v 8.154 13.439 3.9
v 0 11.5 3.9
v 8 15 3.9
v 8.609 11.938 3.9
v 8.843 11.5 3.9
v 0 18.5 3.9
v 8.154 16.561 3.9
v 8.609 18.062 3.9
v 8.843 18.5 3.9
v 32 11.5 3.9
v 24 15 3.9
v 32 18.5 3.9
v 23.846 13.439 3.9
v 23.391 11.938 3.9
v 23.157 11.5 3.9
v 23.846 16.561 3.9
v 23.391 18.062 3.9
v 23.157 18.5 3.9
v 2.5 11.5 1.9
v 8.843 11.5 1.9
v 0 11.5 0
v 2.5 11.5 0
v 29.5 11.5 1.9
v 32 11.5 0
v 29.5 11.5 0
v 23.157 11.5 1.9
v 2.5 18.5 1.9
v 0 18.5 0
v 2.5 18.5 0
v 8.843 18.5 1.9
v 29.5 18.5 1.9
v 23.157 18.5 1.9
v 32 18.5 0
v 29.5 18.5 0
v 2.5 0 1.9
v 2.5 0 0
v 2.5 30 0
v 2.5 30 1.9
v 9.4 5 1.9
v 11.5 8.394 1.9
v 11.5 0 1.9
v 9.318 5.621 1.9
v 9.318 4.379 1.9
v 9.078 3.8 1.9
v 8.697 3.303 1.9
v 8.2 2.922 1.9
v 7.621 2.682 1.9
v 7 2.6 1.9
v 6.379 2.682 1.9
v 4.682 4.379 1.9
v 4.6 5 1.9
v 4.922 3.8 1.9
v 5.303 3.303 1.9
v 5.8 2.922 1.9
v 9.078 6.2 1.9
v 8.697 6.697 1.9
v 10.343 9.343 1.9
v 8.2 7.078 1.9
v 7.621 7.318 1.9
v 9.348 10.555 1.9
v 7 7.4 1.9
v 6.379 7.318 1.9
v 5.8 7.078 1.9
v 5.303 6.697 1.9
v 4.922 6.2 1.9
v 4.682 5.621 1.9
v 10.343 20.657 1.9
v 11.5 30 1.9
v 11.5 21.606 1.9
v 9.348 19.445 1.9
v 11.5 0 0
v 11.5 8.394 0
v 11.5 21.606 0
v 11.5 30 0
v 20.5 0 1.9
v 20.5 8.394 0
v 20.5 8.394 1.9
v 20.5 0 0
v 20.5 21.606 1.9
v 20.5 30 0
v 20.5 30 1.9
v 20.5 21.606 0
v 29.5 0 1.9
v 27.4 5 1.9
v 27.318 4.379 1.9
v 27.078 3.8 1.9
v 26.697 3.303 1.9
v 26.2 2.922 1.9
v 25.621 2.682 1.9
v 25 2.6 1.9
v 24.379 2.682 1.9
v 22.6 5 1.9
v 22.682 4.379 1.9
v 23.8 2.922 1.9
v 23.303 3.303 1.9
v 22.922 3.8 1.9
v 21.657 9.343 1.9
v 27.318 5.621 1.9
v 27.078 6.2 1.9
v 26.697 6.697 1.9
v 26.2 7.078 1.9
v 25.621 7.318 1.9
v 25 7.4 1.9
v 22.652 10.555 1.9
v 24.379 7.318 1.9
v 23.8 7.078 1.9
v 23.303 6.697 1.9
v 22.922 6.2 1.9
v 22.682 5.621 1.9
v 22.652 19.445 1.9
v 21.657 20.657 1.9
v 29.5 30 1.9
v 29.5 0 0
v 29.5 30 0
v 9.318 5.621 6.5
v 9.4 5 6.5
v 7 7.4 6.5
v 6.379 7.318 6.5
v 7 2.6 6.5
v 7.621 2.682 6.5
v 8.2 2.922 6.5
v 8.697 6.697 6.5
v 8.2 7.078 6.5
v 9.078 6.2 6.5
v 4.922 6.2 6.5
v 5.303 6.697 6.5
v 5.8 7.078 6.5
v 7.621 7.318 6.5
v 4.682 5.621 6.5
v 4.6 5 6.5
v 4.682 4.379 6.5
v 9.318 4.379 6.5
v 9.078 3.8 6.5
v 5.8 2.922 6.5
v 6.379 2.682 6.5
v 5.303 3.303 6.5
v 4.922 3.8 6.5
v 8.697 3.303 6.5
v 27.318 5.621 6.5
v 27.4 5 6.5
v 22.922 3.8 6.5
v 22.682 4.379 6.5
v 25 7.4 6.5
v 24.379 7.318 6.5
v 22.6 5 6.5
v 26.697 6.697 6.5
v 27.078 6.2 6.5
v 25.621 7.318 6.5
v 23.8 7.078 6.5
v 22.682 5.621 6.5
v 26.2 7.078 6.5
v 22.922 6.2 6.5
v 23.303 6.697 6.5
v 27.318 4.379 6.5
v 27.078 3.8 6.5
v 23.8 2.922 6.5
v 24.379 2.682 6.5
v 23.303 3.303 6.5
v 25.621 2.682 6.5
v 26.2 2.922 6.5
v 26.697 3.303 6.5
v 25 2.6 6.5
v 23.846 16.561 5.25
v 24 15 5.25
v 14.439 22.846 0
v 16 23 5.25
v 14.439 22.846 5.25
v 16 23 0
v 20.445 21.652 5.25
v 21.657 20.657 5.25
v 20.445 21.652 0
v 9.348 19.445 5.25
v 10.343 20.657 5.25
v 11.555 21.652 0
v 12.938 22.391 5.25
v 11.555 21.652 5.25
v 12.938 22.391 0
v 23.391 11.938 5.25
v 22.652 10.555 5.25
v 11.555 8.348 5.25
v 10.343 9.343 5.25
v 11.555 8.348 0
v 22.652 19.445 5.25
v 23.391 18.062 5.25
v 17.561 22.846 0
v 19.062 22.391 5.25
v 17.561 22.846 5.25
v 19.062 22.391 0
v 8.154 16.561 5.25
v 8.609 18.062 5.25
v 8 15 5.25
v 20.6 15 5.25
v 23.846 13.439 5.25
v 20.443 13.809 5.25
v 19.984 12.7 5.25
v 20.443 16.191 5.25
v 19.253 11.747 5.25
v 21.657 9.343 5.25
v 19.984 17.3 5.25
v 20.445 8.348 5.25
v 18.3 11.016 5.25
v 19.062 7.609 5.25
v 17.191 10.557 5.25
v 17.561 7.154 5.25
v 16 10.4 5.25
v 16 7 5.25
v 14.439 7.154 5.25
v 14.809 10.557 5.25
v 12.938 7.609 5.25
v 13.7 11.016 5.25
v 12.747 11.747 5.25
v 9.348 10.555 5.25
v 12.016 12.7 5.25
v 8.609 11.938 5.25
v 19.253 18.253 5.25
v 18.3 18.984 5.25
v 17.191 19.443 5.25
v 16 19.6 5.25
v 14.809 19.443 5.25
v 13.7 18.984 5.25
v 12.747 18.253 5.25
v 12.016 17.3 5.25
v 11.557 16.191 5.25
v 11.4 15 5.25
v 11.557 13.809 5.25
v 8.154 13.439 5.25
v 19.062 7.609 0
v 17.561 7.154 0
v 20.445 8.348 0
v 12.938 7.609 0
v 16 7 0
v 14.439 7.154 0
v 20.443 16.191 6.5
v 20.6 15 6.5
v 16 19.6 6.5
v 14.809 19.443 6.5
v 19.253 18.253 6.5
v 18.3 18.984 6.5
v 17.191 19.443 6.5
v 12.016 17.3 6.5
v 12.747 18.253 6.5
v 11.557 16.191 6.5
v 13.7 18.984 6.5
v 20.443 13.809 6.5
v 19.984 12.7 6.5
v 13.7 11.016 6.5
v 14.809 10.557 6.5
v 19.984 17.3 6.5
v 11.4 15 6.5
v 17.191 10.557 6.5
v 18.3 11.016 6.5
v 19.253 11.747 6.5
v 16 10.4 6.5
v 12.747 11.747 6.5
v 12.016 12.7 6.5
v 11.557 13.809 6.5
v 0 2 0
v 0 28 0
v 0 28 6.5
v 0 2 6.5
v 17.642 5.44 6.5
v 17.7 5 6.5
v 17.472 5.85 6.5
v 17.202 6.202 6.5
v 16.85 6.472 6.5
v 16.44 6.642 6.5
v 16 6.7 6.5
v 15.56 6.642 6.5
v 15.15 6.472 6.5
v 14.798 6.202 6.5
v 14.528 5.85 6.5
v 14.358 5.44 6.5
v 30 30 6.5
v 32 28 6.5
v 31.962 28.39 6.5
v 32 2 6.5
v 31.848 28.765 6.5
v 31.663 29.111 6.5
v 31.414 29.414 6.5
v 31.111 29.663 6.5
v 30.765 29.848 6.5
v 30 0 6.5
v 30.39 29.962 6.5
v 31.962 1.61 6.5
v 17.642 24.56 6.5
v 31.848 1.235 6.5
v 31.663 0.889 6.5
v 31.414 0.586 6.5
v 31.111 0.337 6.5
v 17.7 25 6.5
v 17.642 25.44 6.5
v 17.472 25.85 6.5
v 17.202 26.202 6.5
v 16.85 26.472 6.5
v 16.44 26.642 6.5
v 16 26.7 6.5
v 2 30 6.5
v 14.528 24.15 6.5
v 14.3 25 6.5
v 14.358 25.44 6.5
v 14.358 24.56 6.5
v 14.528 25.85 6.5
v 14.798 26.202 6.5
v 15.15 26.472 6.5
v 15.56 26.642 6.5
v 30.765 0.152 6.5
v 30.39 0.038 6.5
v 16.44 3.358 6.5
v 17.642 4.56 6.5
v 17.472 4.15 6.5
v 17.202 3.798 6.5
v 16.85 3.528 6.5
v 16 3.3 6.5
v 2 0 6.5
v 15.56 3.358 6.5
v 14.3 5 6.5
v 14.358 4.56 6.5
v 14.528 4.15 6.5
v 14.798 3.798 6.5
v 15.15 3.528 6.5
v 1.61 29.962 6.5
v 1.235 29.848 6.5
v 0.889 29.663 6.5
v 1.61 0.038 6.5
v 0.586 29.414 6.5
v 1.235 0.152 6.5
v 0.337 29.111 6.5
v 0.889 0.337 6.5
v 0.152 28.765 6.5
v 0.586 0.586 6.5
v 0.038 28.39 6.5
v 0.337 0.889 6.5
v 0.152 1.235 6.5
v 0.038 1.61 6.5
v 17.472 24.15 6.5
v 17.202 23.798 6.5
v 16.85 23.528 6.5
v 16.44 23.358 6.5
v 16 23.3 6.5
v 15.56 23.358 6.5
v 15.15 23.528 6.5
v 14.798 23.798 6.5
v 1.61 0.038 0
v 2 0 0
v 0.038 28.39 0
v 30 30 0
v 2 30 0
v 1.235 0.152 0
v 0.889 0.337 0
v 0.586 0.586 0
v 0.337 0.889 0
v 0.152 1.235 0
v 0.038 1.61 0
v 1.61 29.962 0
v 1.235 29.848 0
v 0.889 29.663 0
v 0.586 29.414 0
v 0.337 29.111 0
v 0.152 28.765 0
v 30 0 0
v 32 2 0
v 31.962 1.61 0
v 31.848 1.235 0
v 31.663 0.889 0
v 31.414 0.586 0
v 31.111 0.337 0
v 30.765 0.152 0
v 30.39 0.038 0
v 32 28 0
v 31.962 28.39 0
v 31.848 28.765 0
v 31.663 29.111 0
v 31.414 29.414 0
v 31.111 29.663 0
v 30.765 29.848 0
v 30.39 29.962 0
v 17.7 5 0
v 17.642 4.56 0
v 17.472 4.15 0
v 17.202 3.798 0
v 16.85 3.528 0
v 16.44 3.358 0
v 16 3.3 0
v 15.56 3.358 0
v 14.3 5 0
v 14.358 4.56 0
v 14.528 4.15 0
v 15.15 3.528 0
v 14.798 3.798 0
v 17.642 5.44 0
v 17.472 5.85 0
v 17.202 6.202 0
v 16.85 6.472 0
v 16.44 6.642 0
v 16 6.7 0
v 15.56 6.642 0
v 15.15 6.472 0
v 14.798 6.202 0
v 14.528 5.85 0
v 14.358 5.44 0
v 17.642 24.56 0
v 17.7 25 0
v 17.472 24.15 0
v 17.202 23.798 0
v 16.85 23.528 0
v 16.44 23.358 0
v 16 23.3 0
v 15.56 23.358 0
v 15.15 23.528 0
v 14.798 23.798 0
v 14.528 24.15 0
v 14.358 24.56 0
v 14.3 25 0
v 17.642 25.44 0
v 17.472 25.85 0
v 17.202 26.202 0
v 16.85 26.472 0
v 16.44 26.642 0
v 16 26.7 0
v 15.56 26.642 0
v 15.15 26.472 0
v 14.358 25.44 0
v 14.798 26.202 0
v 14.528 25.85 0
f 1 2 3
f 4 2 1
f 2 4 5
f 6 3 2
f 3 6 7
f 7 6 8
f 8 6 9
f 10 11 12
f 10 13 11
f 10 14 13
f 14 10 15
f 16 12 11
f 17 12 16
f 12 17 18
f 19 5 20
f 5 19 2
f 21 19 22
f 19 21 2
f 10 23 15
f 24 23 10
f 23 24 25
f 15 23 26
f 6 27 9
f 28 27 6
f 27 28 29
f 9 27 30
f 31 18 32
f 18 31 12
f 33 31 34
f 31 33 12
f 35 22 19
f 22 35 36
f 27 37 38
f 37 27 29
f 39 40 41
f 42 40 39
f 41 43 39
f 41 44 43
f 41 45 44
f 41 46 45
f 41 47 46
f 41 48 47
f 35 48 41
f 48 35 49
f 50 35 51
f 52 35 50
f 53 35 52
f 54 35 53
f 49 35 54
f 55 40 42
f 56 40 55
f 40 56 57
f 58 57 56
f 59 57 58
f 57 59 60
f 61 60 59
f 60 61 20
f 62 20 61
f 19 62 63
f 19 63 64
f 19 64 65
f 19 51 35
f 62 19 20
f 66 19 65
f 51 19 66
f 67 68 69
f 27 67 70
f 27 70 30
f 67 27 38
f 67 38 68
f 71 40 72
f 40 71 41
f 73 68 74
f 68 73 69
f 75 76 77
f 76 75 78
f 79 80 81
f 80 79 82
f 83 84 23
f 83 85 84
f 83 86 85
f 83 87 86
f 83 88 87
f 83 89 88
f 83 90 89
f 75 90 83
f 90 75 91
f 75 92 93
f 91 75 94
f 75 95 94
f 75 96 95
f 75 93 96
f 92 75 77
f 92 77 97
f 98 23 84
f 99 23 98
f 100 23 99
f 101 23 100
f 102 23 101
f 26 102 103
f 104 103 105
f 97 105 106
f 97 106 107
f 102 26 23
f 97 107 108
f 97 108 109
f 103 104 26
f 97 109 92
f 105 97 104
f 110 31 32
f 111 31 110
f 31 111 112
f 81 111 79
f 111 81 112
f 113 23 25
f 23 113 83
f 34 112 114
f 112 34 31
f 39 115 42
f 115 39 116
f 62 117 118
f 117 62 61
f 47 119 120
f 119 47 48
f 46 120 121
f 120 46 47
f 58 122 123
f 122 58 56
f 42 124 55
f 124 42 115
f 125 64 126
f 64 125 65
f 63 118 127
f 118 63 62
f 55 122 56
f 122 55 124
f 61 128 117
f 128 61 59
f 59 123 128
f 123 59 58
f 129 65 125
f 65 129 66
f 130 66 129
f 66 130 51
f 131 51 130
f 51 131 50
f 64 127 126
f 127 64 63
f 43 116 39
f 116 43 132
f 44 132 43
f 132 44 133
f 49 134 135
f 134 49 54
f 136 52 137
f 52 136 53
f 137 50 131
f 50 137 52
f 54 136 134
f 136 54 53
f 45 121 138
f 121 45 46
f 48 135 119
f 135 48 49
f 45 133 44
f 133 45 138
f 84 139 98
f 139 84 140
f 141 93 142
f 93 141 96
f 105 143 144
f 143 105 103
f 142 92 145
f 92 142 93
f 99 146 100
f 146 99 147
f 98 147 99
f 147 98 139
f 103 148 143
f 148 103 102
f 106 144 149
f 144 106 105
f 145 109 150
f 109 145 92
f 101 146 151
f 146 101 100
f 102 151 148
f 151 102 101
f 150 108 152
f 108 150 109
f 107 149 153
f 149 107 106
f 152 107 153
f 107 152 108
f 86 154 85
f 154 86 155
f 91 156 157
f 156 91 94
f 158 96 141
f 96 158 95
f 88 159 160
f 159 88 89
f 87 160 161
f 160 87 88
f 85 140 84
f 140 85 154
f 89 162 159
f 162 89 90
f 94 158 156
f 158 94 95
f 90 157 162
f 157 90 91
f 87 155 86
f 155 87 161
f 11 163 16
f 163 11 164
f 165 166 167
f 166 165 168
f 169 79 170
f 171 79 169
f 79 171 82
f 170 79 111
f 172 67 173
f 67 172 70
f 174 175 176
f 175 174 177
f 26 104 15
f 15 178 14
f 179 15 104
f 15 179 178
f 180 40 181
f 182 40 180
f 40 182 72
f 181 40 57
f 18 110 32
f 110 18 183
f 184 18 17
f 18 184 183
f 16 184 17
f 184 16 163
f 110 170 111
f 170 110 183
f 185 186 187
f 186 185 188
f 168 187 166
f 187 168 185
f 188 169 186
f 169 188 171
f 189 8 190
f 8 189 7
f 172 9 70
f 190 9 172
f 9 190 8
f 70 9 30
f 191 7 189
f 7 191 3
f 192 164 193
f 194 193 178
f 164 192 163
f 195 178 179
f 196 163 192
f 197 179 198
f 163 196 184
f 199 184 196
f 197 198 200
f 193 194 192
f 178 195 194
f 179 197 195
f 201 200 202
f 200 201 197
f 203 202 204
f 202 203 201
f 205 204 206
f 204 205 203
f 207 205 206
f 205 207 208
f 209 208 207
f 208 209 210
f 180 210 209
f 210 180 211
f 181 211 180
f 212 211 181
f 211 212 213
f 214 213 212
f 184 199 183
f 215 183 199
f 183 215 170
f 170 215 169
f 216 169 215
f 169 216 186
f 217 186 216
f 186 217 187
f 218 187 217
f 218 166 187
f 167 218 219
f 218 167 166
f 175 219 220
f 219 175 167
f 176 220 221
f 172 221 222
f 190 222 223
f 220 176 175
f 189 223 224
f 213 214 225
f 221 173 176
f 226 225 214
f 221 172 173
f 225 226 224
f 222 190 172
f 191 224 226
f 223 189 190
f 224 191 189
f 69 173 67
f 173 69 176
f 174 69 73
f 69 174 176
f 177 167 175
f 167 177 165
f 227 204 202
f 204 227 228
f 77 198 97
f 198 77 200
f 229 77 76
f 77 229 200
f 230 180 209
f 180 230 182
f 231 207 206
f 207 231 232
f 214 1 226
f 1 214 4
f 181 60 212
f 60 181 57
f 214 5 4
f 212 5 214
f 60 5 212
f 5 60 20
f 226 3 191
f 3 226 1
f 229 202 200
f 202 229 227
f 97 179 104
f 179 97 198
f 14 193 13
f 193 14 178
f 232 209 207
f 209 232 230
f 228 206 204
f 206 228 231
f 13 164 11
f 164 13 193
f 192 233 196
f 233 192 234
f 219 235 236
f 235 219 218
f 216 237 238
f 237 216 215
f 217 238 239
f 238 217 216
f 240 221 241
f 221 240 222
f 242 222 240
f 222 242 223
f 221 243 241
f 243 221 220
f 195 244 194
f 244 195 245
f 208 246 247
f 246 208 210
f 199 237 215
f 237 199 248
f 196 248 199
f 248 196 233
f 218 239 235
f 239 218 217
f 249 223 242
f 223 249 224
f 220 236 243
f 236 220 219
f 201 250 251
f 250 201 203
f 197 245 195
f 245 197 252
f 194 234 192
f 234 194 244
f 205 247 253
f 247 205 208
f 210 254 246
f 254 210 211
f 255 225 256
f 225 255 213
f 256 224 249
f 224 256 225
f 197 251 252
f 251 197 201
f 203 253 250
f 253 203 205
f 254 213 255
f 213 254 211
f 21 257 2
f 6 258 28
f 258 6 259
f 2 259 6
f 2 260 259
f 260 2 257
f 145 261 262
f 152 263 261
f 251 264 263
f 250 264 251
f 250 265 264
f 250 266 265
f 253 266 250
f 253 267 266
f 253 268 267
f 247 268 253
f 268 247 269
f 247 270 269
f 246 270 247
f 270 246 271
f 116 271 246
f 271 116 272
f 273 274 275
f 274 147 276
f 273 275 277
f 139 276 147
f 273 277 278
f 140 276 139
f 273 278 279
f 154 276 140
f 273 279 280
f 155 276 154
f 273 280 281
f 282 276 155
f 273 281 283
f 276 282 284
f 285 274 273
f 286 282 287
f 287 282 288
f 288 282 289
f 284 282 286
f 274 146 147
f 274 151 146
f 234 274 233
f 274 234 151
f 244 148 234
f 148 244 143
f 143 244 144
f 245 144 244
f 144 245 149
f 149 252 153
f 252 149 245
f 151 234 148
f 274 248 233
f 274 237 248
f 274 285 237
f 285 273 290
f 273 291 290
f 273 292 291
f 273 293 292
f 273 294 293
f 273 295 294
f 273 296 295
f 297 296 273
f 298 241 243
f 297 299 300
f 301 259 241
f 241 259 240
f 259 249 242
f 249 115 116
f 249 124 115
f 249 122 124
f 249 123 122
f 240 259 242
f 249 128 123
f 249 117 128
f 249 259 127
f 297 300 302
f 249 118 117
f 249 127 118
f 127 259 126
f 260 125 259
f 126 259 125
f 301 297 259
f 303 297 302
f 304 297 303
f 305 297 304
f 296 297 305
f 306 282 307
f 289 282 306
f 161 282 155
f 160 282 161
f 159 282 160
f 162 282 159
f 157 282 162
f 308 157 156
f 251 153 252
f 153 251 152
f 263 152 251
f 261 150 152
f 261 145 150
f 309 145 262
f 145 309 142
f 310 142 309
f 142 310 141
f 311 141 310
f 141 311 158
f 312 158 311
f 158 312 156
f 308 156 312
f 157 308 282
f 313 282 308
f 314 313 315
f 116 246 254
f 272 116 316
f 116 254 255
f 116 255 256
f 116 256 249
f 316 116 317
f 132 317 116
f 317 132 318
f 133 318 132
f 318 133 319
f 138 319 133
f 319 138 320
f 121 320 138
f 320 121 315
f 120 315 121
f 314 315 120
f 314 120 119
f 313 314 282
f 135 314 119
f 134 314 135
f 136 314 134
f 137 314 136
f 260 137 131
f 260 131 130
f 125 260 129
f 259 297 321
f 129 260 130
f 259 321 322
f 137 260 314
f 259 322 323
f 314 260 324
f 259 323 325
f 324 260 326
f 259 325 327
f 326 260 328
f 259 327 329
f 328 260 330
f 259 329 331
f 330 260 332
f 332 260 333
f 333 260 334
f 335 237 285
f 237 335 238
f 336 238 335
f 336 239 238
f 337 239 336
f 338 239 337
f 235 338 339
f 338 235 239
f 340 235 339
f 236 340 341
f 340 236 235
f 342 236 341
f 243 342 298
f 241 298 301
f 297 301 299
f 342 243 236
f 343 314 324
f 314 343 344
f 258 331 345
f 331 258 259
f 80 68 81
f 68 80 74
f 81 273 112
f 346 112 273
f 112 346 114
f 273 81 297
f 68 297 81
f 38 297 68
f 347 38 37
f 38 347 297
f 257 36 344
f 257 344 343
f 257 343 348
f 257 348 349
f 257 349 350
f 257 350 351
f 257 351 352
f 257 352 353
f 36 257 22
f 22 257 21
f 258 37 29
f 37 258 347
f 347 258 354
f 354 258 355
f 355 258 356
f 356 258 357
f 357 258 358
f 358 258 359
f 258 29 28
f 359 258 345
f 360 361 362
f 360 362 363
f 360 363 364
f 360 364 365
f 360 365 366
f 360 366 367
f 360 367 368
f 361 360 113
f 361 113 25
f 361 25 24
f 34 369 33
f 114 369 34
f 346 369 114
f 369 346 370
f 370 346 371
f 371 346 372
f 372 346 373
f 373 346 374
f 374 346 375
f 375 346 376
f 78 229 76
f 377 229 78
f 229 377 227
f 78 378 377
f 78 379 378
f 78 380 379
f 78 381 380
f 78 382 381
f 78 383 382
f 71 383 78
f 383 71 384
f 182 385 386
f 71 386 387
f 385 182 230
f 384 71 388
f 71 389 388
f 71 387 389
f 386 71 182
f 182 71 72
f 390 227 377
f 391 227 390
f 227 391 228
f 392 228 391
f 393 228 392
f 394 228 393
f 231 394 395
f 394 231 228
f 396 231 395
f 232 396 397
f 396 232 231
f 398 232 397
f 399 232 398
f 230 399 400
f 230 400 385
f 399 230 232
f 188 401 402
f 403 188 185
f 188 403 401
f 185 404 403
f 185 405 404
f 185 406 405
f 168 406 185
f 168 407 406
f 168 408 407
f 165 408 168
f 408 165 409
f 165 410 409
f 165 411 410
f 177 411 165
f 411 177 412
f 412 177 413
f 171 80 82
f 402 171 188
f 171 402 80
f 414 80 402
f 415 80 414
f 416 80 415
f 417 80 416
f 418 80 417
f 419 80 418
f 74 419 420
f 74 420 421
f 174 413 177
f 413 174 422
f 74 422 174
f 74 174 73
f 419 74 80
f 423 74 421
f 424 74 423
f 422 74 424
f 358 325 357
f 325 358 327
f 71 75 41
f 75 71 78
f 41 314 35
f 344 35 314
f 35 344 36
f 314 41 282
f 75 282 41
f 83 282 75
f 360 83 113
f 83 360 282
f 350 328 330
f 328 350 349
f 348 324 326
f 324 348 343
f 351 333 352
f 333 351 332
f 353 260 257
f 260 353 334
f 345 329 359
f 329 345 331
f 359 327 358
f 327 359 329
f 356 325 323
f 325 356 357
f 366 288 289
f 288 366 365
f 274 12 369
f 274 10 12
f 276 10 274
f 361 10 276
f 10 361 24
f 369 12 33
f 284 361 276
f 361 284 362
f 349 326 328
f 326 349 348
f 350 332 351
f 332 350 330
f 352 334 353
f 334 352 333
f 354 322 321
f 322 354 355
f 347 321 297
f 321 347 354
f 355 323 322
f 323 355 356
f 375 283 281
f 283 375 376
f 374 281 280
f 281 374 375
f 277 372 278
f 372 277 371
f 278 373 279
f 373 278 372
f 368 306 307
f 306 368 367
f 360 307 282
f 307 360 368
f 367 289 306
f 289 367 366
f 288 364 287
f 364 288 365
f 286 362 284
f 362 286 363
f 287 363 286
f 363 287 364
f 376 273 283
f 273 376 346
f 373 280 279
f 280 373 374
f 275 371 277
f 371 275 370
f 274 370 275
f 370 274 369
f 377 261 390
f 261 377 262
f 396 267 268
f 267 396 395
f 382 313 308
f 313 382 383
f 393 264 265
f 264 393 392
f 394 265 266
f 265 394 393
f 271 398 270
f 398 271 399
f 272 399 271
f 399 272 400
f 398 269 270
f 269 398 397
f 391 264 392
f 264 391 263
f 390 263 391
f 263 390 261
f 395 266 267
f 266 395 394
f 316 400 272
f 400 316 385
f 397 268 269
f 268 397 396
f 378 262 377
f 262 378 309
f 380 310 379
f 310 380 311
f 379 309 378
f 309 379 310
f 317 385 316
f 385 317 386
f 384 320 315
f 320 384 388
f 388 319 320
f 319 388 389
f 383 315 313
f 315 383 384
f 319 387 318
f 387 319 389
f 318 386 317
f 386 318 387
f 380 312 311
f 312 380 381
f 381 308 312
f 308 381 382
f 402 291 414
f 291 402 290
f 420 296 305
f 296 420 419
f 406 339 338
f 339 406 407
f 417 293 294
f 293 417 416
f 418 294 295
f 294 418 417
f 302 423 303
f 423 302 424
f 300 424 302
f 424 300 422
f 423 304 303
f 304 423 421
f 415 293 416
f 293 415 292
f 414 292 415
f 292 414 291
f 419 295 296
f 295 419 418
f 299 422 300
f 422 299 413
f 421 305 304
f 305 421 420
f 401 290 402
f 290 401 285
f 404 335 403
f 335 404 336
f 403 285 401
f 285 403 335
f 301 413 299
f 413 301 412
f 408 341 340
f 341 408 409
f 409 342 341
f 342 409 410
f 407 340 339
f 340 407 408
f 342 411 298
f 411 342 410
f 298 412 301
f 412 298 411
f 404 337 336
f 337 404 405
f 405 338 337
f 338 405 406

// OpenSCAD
union() // SharpSCAD generated scene: SwitchSandwich
{
  difference()
  {
    translate( v= [ 0, 0, 3.25 ] )
    {
      hull()
      {
        translate( v= [ 2, 2, 0 ] )
        {
          cylinder( r= 2, center= true, $fn= 32, h= 6.5 );
        }
        translate( v= [ 28, 0, 0 ] )
        {
          translate( v= [ 2, 2, 0 ] )
          {
            cylinder( r= 2, center= true, $fn= 32, h= 6.5 );
          }
        }
        translate( v= [ 0, 26, 0 ] )
        {
          translate( v= [ 2, 2, 0 ] )
          {
            cylinder( r= 2, center= true, $fn= 32, h= 6.5 );
          }
        }
        translate( v= [ 28, 26, 0 ] )
        {
          translate( v= [ 2, 2, 0 ] )
          {
            cylinder( r= 2, center= true, $fn= 32, h= 6.5 );
          }
        }
      }
    }
    union()
    {
      translate( v= [ -2, 11.5, -0.1 ] )
      {
        cube( size= [ 36, 7, 4 ] );
      }
      translate( v= [ 2.5, -2, -0.1 ] )
      {
        cube( size= [ 9, 34, 2 ] );
      }
      translate( v= [ 20.5, -2, -0.1 ] )
      {
        cube( size= [ 9, 34, 2 ] );
      }
      translate( v= [ 7, 5, -0.2 ] )
      {
        cylinder( r= 2.4, $fn= 24, h= 10 );
      }
      translate( v= [ 25, 5, -0.2 ] )
      {
        cylinder( r= 2.4, $fn= 24, h= 10 );
      }
    }
    union()
    {
      translate( v= [ 16, 15, -0.25 ] )
      {
        cylinder( r= 8, $fn= 32, h= 5.5 );
      }
      translate( v= [ 16, 15, -0.3 ] )
      {
        cylinder( r= 4.6, $fn= 24, h= 7 );
      }
    }
    translate( v= [ 0, 5, 0 ] )
    {
      translate( v= [ 16, 0, 0 ] )
      {
        cylinder( r= 1.7, center= true, $fn= 24, h= 20 );
      }
    }
    translate( v= [ 0, 25, 0 ] )
    {
      translate( v= [ 16, 0, 0 ] )
      {
        cylinder( r= 1.7, center= true, $fn= 24, h= 20 );
      }
    }
  }
}
